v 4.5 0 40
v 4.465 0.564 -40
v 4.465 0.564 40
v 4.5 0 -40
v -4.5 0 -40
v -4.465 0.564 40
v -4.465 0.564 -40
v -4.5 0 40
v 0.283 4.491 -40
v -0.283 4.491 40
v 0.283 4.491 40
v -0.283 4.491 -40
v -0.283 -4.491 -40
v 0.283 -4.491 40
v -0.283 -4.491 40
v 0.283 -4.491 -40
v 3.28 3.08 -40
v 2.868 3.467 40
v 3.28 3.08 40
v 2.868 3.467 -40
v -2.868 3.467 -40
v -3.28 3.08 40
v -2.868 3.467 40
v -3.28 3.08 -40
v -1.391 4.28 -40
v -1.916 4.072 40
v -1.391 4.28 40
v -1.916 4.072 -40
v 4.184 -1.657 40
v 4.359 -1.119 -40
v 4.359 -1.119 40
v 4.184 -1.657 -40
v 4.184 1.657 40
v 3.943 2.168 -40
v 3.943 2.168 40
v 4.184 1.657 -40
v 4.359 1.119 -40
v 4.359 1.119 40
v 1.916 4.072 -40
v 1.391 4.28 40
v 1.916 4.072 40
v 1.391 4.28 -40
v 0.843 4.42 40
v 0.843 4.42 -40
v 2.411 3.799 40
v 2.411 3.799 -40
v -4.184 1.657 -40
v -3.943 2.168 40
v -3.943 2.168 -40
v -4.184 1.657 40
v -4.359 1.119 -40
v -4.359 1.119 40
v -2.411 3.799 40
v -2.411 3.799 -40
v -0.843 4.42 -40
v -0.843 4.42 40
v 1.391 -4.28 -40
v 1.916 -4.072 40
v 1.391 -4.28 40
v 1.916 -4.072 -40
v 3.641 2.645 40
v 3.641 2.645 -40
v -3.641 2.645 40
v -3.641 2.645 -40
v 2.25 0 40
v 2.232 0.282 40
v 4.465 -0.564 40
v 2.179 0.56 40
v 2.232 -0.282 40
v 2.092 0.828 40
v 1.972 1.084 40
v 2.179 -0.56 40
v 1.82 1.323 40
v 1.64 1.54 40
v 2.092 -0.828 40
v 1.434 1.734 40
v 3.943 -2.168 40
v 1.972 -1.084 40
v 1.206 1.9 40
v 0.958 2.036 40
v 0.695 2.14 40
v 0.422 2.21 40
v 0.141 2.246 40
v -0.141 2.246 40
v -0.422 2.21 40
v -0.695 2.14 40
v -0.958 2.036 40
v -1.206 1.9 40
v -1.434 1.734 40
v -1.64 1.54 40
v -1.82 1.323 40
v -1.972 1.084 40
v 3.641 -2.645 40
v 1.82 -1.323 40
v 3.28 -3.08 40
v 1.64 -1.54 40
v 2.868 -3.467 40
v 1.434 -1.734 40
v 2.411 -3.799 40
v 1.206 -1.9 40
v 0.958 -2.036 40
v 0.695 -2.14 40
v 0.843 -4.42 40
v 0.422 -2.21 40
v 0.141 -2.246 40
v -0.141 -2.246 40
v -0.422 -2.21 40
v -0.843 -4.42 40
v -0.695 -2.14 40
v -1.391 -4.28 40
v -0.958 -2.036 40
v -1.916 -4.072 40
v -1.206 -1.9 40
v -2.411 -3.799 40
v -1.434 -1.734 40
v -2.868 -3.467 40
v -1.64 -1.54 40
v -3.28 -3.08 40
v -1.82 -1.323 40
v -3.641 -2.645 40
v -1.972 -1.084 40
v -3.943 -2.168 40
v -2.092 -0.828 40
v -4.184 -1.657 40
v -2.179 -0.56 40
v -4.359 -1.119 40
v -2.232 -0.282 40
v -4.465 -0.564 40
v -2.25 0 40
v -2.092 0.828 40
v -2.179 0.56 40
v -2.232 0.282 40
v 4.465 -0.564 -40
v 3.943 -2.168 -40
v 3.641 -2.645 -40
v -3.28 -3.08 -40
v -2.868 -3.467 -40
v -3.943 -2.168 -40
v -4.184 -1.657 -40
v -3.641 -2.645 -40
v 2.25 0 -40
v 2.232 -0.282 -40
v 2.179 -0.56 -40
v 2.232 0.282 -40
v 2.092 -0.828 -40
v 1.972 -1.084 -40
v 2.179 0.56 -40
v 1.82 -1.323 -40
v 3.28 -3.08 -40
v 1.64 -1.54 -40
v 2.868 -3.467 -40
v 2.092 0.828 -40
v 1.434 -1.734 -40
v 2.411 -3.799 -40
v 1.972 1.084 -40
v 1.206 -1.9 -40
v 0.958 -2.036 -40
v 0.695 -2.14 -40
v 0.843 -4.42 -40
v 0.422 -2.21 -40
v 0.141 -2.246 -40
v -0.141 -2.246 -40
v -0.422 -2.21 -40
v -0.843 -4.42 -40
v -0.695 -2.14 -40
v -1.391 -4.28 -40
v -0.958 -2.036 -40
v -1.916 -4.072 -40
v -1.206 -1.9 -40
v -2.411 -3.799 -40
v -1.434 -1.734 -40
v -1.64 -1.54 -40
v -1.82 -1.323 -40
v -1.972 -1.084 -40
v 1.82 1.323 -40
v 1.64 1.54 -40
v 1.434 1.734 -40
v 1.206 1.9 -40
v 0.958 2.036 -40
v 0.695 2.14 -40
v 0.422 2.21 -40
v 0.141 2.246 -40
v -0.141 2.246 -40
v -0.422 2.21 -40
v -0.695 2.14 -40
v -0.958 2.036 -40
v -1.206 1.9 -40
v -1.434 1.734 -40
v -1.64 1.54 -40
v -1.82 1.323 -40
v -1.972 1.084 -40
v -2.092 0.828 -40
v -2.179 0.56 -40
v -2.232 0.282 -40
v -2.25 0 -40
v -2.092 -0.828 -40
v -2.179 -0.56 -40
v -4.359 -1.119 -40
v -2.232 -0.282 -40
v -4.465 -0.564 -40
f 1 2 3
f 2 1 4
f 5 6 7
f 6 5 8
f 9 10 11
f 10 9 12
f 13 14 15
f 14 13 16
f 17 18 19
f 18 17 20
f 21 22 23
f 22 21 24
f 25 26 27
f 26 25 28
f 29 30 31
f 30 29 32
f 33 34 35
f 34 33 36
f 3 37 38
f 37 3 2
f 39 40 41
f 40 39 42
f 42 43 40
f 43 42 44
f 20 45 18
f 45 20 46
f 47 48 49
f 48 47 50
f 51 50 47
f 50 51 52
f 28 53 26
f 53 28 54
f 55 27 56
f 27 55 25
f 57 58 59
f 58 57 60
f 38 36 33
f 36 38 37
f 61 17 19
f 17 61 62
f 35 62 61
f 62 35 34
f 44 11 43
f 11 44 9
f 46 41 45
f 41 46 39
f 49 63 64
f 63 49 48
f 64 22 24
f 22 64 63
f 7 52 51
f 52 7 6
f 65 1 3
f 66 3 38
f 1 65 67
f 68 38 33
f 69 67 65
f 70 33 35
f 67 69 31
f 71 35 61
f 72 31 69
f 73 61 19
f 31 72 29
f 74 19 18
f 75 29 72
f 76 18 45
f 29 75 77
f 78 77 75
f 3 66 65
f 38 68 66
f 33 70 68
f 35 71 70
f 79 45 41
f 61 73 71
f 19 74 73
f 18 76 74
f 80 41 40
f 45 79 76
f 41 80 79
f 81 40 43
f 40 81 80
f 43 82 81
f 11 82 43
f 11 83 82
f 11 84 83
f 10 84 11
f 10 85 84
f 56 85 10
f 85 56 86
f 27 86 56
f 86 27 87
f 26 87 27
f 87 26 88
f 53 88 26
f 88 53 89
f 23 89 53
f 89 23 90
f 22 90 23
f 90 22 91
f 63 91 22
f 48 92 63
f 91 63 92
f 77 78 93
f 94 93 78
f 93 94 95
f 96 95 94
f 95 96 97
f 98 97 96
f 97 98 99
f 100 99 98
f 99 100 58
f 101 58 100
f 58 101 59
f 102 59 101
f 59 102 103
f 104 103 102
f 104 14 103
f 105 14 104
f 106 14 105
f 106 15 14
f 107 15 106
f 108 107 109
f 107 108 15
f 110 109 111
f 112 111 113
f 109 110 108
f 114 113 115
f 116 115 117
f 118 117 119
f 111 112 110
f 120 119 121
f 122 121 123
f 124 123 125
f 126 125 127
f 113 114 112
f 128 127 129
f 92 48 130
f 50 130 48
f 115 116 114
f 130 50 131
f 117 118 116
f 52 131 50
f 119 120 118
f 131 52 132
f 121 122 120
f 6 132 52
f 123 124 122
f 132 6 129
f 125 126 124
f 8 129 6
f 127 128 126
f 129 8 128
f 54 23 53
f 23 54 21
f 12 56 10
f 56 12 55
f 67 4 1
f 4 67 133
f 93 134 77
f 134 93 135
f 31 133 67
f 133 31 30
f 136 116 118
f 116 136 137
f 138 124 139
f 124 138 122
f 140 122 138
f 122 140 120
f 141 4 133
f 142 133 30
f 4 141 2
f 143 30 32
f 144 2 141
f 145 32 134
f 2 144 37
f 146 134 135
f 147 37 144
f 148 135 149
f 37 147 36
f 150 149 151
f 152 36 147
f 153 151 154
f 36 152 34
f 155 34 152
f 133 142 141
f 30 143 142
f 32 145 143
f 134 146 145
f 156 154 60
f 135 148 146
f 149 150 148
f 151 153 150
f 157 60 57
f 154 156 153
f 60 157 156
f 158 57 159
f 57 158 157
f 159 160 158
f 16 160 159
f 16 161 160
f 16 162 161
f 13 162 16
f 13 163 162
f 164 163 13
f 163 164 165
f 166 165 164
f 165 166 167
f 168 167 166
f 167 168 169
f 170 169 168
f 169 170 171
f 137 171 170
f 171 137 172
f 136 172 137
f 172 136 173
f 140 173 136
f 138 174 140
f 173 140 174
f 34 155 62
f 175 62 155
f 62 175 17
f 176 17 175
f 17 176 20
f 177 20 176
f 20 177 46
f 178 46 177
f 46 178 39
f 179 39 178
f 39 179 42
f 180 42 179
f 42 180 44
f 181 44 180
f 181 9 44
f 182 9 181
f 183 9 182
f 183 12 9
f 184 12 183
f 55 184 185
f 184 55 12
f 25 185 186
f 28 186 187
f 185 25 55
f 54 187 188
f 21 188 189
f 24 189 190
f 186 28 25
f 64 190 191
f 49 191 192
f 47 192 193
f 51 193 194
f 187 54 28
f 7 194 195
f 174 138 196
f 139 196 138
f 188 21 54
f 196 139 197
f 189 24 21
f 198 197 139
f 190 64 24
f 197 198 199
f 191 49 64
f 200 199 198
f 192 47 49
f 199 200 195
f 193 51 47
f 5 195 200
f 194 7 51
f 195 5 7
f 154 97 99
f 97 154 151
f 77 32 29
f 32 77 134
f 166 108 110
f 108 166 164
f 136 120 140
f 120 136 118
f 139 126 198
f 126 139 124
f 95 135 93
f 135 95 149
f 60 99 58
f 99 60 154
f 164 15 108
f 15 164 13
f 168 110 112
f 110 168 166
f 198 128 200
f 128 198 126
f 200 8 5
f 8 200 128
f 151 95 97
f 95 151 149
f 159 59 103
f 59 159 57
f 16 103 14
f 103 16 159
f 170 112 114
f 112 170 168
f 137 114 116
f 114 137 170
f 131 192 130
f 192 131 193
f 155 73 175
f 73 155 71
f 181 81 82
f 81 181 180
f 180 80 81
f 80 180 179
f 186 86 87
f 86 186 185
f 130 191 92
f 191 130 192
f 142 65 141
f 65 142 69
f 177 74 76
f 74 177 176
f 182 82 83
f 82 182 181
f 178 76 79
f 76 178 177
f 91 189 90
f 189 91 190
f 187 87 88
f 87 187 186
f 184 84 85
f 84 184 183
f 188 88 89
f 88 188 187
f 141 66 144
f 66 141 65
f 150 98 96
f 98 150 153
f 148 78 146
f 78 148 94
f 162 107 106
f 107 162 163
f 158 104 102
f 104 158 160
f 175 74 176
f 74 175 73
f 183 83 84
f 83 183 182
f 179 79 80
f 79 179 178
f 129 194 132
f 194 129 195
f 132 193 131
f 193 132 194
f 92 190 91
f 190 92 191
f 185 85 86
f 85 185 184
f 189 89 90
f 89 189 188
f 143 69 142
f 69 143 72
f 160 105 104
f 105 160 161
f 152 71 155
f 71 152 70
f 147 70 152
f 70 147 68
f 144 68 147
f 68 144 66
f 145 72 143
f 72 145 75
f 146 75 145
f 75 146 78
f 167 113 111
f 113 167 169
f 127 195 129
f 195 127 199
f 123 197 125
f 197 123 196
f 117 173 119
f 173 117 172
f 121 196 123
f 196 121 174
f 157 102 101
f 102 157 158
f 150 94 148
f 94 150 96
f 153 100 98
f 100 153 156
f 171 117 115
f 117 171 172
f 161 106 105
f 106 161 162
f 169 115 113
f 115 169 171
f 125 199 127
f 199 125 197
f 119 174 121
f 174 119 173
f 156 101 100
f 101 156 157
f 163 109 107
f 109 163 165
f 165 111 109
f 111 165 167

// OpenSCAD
$fn = 50;


difference() {
	union() {
		translate(v = [0, 0, -40.0000000000]) {
			cylinder(h = 80, r = 4.5000000000);
		}
	}
	union() {
		translate(v = [0, 0, -100.0000000000]) {
			cylinder(h = 200, r = 2.2500000000);
		}
	}
}
